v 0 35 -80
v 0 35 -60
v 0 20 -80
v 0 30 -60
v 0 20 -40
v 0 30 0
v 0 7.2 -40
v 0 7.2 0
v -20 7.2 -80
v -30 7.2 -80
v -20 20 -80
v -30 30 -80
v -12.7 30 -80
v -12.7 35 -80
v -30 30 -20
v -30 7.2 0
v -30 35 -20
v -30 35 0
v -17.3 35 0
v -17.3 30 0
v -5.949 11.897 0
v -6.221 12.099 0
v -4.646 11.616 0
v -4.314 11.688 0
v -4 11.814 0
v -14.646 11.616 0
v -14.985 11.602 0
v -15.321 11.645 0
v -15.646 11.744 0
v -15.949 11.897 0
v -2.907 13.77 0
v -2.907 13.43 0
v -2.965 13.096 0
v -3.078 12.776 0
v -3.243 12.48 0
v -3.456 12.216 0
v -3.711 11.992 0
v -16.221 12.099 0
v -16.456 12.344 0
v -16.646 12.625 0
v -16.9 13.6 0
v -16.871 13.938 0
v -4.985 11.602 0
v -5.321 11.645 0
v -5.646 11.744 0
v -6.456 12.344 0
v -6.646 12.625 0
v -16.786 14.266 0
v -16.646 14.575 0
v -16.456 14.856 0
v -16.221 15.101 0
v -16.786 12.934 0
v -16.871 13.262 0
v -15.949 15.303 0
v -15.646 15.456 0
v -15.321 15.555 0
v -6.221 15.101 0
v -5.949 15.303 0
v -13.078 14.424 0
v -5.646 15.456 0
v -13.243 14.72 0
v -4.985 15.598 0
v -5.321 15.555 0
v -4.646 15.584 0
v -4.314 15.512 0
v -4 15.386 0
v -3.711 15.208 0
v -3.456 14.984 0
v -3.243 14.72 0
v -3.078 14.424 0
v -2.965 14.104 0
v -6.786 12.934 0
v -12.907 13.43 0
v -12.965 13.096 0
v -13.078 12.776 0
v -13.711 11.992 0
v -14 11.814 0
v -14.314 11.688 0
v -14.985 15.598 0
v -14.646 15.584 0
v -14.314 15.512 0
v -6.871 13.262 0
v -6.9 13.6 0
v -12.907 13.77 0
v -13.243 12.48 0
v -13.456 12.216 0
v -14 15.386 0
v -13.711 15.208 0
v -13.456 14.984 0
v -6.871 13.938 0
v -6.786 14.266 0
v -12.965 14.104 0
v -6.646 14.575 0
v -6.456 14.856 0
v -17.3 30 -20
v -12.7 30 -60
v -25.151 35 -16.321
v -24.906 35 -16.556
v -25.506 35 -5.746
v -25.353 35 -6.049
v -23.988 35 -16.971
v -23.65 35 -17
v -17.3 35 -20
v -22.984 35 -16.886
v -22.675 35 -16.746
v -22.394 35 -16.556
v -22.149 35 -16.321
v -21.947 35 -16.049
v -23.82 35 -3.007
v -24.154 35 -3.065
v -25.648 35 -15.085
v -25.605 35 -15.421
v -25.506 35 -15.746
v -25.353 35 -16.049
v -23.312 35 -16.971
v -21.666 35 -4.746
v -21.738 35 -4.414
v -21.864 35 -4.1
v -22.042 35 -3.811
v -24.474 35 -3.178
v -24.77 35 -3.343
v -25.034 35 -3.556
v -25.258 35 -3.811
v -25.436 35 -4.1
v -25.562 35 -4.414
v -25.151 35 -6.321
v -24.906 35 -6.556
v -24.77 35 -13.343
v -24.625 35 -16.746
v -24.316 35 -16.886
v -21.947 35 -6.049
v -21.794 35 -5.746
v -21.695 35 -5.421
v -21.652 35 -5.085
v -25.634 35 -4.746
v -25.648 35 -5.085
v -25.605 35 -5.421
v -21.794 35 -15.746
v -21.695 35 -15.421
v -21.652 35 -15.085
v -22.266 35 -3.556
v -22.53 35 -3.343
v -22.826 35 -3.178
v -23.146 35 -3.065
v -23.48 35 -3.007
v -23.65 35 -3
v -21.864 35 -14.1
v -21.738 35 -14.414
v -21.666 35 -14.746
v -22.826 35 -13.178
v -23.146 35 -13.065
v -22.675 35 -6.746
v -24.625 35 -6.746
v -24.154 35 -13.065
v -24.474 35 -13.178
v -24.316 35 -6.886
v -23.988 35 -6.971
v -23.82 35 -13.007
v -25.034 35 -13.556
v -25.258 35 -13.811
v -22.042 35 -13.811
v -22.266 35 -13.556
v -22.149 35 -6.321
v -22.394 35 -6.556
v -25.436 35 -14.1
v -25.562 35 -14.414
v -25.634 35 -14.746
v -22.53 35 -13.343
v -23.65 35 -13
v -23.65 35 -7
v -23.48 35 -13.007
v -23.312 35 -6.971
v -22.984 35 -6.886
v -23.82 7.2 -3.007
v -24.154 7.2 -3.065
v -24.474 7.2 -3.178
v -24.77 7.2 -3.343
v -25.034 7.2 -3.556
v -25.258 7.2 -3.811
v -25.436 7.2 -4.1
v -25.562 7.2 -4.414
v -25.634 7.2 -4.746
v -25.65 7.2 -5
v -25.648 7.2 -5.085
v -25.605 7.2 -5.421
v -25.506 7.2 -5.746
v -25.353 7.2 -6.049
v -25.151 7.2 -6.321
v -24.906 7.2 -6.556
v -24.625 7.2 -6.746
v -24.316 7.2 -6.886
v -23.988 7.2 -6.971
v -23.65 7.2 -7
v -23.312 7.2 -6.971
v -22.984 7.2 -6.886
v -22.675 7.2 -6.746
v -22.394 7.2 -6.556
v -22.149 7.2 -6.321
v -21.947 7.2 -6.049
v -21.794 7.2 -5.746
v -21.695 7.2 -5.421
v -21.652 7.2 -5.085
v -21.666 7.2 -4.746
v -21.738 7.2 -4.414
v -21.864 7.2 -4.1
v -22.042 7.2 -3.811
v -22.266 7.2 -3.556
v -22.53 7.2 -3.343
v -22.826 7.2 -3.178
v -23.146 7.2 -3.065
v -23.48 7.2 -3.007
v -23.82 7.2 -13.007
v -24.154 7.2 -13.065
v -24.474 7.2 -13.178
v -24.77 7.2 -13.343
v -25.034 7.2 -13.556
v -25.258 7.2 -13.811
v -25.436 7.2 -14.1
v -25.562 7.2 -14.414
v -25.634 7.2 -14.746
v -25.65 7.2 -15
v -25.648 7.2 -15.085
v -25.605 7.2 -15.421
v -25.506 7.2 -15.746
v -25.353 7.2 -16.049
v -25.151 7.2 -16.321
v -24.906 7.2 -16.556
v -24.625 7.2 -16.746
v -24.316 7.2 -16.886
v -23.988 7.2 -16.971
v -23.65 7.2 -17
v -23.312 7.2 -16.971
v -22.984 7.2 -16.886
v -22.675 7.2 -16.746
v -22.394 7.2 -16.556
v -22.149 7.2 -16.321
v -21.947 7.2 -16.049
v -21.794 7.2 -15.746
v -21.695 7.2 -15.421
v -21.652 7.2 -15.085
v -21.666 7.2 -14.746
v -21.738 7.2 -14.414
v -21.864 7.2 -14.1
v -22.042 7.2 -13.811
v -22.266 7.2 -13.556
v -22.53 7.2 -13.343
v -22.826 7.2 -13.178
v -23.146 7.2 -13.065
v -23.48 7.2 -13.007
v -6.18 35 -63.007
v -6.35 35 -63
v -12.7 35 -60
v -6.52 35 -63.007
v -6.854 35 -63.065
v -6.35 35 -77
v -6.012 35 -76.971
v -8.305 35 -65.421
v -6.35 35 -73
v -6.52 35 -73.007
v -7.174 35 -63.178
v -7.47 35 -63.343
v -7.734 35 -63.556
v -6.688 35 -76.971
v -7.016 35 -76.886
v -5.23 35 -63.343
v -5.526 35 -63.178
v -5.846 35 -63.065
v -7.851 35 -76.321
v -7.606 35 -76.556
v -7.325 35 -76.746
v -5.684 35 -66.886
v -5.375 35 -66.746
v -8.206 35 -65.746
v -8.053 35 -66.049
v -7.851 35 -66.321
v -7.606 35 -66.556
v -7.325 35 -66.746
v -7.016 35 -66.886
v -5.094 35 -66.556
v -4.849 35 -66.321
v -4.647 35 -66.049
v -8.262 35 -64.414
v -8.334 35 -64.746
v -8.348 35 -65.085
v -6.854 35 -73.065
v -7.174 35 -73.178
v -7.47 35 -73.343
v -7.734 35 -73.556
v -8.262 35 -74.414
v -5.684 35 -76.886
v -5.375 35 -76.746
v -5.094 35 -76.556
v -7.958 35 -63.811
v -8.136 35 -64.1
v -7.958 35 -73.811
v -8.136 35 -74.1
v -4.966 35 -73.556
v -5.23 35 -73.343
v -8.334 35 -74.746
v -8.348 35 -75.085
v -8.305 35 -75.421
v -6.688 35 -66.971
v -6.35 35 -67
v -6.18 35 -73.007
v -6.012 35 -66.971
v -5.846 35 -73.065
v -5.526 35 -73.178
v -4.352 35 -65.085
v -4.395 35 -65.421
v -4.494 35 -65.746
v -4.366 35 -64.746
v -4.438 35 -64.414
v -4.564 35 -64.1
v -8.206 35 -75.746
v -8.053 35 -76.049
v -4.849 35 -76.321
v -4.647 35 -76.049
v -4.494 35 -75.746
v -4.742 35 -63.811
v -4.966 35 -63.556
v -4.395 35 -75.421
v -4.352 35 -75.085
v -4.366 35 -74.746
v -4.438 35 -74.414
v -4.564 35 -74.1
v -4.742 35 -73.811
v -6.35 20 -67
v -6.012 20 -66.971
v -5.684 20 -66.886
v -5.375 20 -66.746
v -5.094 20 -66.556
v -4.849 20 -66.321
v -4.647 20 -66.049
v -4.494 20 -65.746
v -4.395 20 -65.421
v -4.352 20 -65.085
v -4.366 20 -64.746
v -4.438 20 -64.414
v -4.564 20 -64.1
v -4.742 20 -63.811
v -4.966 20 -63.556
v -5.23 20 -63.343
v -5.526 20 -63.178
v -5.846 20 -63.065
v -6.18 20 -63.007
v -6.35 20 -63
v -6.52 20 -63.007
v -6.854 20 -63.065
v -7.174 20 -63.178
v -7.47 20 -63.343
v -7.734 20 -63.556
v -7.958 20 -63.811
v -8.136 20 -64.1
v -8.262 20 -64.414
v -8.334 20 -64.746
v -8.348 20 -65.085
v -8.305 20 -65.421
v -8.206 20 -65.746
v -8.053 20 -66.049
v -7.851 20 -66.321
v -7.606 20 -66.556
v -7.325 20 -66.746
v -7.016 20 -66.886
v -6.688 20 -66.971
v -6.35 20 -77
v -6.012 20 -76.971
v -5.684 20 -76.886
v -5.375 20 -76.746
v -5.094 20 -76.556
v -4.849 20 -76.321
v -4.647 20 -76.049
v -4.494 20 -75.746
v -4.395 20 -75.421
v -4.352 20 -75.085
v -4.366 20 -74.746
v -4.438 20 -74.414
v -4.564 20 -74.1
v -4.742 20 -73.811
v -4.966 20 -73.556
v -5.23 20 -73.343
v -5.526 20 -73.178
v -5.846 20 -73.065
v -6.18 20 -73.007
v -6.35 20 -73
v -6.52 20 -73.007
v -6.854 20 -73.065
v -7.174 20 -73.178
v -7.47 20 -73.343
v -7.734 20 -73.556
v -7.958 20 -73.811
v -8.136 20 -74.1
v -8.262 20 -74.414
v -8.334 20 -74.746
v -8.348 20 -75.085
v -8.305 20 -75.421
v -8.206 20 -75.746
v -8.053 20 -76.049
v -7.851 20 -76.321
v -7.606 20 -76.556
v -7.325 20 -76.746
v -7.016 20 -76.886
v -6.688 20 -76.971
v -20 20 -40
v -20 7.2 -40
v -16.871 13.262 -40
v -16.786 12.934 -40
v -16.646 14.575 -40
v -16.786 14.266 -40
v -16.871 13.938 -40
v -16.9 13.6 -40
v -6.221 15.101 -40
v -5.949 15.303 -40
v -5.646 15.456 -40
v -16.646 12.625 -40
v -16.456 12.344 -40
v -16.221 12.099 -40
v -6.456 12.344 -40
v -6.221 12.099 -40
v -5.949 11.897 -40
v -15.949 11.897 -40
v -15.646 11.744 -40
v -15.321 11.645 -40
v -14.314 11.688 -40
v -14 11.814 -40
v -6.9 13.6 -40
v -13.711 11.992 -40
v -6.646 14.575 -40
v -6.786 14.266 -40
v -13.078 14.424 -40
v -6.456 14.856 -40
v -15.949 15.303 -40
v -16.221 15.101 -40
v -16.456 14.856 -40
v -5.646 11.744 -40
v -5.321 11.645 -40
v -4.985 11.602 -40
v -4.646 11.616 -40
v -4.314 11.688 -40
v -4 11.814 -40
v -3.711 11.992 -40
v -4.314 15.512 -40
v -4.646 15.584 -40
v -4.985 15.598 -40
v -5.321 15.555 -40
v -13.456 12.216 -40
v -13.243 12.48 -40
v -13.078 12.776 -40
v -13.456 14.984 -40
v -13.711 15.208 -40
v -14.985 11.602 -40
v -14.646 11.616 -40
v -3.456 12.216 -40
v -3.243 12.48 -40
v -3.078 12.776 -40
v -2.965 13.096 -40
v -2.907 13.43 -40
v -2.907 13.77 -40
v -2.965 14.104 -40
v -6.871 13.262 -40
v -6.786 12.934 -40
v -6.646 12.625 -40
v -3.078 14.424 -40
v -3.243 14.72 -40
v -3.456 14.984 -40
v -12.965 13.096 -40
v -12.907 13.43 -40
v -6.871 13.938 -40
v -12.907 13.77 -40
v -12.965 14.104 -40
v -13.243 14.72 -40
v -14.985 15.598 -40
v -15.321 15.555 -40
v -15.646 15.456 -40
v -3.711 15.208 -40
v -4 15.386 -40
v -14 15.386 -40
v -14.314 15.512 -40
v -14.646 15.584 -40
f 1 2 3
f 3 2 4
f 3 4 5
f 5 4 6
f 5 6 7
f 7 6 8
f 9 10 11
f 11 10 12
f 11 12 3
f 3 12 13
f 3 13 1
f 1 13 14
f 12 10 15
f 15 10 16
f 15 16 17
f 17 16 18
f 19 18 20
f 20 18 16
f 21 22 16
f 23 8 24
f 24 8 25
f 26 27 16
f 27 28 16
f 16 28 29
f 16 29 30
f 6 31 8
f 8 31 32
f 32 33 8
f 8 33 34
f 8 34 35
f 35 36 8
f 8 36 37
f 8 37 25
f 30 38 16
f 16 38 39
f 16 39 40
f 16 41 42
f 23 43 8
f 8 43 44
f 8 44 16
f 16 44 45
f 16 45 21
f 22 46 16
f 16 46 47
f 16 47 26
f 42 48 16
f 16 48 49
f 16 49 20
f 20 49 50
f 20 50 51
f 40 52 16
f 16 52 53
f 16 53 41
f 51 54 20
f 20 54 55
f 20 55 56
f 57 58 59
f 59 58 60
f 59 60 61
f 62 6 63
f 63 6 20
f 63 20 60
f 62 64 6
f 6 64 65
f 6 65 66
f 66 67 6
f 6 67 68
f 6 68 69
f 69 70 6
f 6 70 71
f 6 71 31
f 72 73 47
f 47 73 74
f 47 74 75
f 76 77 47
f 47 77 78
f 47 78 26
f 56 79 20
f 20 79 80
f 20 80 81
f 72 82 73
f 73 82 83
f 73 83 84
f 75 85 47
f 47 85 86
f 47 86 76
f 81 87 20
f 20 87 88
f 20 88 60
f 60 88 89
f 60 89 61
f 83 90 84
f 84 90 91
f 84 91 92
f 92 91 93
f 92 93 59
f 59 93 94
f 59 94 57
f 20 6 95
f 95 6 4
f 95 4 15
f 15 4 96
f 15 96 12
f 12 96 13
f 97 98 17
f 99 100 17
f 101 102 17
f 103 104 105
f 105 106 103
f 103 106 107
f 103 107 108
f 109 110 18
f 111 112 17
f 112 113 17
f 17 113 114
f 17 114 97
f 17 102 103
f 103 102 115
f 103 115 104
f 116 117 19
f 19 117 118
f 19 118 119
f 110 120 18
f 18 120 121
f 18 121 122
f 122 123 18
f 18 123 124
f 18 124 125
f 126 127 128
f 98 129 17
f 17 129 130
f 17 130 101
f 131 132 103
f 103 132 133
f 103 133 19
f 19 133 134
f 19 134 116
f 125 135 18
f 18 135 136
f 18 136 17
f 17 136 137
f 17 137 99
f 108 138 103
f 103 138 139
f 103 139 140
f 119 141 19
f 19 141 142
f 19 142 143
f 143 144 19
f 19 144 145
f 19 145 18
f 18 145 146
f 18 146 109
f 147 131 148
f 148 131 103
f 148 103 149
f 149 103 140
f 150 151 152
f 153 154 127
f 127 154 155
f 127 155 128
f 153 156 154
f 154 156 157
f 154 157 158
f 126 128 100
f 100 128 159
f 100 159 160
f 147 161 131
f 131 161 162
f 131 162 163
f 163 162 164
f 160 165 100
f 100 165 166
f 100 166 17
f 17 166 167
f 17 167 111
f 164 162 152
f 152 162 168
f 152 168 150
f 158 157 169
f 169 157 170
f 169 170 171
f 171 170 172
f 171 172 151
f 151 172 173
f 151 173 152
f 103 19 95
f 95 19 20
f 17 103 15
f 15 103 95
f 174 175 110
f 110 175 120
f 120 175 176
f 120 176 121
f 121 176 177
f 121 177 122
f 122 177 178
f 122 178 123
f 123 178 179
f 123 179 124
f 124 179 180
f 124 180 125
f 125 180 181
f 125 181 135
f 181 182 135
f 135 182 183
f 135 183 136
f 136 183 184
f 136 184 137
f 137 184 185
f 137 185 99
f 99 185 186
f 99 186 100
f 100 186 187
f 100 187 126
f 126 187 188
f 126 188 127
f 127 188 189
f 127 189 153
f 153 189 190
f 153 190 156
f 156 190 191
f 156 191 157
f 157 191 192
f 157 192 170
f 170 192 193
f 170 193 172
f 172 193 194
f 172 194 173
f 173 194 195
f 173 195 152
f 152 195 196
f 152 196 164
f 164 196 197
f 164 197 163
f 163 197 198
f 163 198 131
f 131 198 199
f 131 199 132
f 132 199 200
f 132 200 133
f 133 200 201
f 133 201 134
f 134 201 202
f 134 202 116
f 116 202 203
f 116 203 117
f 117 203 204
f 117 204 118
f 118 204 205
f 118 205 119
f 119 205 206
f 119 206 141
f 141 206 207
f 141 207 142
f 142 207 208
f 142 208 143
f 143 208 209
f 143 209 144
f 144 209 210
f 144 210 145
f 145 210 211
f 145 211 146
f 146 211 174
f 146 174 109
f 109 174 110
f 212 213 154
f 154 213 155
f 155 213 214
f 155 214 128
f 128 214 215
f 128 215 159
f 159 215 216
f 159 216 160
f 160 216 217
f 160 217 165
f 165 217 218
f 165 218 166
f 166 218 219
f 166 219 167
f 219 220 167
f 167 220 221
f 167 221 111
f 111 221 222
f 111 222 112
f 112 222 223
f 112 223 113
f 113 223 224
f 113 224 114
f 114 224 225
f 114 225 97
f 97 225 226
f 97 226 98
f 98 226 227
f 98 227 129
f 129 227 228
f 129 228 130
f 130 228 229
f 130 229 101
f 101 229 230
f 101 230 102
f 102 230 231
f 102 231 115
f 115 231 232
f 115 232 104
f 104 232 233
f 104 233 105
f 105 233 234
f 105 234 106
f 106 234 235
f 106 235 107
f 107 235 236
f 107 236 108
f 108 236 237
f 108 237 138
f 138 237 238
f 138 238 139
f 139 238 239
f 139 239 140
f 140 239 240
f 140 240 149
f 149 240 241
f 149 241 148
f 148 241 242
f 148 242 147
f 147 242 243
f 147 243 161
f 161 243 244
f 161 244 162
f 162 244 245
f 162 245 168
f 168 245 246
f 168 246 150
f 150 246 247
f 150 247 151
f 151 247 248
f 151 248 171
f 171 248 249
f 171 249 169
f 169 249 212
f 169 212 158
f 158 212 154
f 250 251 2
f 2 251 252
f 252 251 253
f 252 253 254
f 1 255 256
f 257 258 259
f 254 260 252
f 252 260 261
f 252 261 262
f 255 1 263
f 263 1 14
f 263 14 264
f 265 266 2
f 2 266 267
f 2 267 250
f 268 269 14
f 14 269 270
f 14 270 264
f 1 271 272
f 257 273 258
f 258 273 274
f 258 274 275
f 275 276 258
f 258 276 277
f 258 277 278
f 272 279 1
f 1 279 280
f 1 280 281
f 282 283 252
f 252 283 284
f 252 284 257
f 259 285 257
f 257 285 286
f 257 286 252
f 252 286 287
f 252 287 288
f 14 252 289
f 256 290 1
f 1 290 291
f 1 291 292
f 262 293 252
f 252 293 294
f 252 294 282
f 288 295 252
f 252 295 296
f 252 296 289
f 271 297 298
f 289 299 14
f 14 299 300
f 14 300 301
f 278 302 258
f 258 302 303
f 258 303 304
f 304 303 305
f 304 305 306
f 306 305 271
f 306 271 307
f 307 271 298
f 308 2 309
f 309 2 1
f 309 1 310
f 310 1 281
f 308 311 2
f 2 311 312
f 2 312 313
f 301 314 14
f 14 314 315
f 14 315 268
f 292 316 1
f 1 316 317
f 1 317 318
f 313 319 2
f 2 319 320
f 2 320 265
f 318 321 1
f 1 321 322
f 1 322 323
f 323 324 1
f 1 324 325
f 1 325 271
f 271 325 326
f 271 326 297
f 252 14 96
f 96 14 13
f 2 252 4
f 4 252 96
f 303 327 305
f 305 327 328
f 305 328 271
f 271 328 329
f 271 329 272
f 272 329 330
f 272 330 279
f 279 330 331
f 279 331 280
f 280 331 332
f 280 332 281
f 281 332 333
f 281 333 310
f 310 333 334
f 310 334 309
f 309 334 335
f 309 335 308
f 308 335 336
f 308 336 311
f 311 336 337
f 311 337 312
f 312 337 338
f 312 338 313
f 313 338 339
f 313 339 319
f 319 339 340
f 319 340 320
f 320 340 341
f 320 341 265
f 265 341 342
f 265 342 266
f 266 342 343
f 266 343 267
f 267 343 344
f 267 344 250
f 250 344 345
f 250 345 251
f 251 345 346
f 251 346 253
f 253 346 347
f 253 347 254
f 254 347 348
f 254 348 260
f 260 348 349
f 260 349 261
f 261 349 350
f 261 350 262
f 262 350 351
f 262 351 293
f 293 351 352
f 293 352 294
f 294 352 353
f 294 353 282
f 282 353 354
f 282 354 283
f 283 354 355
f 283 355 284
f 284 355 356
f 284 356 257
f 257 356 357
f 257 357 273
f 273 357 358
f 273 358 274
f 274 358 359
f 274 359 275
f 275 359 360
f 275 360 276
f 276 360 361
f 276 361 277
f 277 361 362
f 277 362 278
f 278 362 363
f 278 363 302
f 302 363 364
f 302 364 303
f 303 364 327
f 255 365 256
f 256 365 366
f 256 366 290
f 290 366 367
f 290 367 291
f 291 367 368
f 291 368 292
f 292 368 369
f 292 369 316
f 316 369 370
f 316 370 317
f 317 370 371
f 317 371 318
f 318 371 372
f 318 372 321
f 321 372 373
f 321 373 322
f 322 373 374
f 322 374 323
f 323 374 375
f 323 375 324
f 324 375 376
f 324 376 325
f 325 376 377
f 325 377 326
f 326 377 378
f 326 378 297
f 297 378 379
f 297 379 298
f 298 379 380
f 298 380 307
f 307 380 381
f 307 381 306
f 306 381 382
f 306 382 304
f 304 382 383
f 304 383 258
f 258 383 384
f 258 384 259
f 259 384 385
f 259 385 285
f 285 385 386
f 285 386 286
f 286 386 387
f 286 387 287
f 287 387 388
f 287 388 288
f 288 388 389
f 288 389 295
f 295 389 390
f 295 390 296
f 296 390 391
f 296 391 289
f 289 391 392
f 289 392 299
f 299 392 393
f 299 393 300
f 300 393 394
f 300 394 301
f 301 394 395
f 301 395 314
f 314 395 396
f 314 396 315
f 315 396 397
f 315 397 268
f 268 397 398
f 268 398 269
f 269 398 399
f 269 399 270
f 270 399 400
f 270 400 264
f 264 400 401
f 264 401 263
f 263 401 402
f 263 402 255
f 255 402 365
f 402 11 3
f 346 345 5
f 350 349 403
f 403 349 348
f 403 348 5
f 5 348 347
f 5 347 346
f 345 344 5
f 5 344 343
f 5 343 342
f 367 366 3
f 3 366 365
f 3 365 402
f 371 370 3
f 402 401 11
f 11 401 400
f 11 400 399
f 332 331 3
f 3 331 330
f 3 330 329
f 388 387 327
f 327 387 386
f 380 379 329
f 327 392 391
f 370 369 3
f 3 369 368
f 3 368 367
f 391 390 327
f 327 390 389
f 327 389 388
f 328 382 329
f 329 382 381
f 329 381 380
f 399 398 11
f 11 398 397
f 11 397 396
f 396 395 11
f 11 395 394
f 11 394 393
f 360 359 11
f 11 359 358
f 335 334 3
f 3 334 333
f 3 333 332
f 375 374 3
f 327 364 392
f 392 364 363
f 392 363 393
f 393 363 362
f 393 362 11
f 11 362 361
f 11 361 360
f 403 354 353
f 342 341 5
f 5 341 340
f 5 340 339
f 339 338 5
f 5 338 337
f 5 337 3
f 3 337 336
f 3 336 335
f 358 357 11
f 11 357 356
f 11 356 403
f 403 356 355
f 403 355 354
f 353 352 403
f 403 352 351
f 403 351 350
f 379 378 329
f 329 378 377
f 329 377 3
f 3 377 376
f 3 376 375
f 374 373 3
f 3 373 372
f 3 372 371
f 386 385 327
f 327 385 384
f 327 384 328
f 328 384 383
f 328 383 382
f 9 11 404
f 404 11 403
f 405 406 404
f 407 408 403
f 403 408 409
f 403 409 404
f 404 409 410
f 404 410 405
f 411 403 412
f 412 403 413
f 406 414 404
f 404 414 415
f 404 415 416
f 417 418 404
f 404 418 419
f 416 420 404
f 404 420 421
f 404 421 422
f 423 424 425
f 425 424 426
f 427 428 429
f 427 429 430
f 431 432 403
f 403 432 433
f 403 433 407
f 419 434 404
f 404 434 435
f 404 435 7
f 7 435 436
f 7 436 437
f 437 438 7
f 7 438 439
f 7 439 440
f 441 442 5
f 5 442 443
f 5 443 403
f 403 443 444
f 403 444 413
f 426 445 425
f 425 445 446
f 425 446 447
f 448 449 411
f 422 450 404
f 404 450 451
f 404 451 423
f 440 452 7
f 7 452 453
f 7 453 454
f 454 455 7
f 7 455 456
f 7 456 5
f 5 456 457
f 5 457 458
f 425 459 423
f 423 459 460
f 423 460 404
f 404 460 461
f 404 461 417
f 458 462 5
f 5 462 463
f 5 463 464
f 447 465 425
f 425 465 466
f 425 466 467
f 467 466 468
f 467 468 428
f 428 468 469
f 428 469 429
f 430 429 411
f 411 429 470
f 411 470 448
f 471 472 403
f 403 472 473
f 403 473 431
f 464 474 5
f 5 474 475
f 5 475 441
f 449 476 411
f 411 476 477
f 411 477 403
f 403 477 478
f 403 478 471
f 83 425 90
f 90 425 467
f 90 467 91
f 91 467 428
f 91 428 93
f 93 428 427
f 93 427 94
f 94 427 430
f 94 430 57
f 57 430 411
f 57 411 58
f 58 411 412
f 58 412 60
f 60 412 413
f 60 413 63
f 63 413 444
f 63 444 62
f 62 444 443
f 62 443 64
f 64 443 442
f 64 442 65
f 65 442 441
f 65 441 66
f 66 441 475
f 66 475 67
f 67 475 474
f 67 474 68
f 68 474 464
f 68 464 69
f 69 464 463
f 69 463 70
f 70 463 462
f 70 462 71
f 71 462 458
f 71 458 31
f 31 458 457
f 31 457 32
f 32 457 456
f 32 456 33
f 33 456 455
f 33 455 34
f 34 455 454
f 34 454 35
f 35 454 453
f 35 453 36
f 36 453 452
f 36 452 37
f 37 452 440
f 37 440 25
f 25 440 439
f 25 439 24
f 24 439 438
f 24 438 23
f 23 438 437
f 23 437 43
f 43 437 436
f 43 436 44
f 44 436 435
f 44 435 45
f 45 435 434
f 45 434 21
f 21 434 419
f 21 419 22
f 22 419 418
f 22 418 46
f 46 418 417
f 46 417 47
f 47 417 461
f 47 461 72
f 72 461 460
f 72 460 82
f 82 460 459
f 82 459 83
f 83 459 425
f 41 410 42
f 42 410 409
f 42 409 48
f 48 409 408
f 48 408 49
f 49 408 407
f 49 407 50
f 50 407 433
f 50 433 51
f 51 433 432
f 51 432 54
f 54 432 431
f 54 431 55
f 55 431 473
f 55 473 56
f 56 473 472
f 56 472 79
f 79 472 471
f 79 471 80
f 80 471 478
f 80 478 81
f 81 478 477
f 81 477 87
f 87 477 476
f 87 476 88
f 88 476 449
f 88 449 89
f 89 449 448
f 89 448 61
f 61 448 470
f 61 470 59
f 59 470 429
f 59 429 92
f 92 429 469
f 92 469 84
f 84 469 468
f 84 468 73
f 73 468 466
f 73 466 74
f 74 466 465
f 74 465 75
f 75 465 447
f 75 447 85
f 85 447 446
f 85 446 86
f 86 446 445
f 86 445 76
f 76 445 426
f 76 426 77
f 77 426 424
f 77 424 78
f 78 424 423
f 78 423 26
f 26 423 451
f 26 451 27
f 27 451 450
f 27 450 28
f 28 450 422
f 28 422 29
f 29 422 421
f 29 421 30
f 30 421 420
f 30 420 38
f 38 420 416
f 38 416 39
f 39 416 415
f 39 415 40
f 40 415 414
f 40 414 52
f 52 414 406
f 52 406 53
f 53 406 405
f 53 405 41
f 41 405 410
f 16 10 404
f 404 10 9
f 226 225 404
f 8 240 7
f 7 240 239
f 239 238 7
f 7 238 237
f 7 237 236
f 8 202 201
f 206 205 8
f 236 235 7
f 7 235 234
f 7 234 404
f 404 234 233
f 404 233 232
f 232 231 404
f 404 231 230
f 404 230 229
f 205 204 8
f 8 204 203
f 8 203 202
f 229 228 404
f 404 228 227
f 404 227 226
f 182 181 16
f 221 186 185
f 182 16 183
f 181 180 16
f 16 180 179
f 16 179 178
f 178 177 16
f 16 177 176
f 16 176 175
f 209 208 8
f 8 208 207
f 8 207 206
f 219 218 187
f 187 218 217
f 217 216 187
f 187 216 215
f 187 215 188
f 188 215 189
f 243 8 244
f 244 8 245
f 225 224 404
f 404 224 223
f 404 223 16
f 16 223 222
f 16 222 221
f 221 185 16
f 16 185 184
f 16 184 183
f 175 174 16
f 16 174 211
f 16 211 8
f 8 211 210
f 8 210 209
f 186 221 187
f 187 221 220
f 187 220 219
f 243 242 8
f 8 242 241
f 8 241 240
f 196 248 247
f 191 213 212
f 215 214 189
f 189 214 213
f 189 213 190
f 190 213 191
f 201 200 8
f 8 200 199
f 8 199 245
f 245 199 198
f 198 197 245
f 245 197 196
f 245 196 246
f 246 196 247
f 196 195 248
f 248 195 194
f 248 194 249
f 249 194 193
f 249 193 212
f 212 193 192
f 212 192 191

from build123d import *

# Parameters (mm, degrees)
SKETCH1_W           = 30
SKETCH1_H           = 80
BOSS_EXTRUDE1_DEPTH = 30
SKETCH2_W           = 12.7
SKETCH2_H           = 20
SKETCH2_R           = 2
BOSS_EXTRUDE2_DEPTH = 5
SKETCH3_R           = 2
CUT_EXTRUDE1_DEPTH  = 93.330926563
SKETCH4_W           = 20
SKETCH4_H           = 20
CUT_EXTRUDE2_DEPTH  = 40
SKETCH5_R           = 2
SKETCH5_W           = 30
SKETCH5_H           = 7.2
CUT_EXTRUDE3_DEPTH  = 93.330926563


with BuildPart() as part:
    # Sketch1 → Boss-Extrude1 (new body)
    with BuildSketch(Plane(origin=(0, 0, 0), x_dir=(1, 0, 0), z_dir=(0, 1, 0))):
        with Locations((-15, 40)):
            Rectangle(SKETCH1_W, SKETCH1_H)
    extrude(amount=BOSS_EXTRUDE1_DEPTH)

    # Sketch2 → Boss-Extrude2 (add)
    # profile 1 of 2: a face of its own
    with BuildSketch(Plane(origin=(0, 30, 0), x_dir=(1, 0, 0), z_dir=(0, 1, 0))):
        with Locations((-23.65, 10)):
            Rectangle(SKETCH2_W, SKETCH2_H)
        with Locations(Location((-23.65, 5, 0), (0, 0, 270))):
            Circle(SKETCH2_R, mode=Mode.SUBTRACT)
        with Locations(Location((-23.65, 15, 0), (0, 0, 270))):
            Circle(SKETCH2_R, mode=Mode.SUBTRACT)
    # profile 2 of 2: a face of its own
    with BuildSketch(Plane(origin=(0, 30, 0), x_dir=(1, 0, 0), z_dir=(0, 1, 0))):
        with Locations((-6.35, 70)):
            Rectangle(SKETCH2_W, SKETCH2_H)
        with Locations(Location((-6.35, 65, 0), (0, 0, 270))):
            Circle(SKETCH2_R, mode=Mode.SUBTRACT)
        with Locations(Location((-6.35, 75, 0), (0, 0, 270))):
            Circle(SKETCH2_R, mode=Mode.SUBTRACT)
    extrude(amount=BOSS_EXTRUDE2_DEPTH)

    # Sketch3 → Cut-Extrude1 (cut, through all)
    with BuildSketch(Plane(origin=(0, 35, 0), x_dir=(1, 0, 0), z_dir=(0, 1, 0))):
        with Locations(Location((-23.65, 15, 0), (0, 0, 270))):
            Circle(SKETCH3_R)
        with Locations(Location((-23.65, 5, 0), (0, 0, 270))):
            Circle(SKETCH3_R)
        with Locations(Location((-6.35, 75, 0), (0, 0, 270))):
            Circle(SKETCH3_R)
        with Locations(Location((-6.35, 65, 0), (0, 0, 270))):
            Circle(SKETCH3_R)
    extrude(amount=-CUT_EXTRUDE1_DEPTH, mode=Mode.SUBTRACT)

    # Sketch4 → Cut-Extrude2 (cut)
    with BuildSketch(Plane(origin=(0, 0, -80), x_dir=(-1, 0, 0), z_dir=(0, 0, -1))):
        with Locations((10, 10)):
            Rectangle(SKETCH4_W, SKETCH4_H)
    extrude(amount=-CUT_EXTRUDE2_DEPTH, mode=Mode.SUBTRACT)

    # Sketch5 → Cut-Extrude3 (cut, through all)
    with BuildSketch(Plane(origin=(0, 0, -80), x_dir=(-1, 0, 0), z_dir=(0, 0, -1))):
        with Locations((4.9, 13.6)):
            Circle(SKETCH5_R)
        with Locations((14.9, 13.6)):
            Circle(SKETCH5_R)
        with Locations((15, 3.6)):
            Rectangle(SKETCH5_W, SKETCH5_H)
    extrude(amount=-CUT_EXTRUDE3_DEPTH, mode=Mode.SUBTRACT)


solid = part.part
